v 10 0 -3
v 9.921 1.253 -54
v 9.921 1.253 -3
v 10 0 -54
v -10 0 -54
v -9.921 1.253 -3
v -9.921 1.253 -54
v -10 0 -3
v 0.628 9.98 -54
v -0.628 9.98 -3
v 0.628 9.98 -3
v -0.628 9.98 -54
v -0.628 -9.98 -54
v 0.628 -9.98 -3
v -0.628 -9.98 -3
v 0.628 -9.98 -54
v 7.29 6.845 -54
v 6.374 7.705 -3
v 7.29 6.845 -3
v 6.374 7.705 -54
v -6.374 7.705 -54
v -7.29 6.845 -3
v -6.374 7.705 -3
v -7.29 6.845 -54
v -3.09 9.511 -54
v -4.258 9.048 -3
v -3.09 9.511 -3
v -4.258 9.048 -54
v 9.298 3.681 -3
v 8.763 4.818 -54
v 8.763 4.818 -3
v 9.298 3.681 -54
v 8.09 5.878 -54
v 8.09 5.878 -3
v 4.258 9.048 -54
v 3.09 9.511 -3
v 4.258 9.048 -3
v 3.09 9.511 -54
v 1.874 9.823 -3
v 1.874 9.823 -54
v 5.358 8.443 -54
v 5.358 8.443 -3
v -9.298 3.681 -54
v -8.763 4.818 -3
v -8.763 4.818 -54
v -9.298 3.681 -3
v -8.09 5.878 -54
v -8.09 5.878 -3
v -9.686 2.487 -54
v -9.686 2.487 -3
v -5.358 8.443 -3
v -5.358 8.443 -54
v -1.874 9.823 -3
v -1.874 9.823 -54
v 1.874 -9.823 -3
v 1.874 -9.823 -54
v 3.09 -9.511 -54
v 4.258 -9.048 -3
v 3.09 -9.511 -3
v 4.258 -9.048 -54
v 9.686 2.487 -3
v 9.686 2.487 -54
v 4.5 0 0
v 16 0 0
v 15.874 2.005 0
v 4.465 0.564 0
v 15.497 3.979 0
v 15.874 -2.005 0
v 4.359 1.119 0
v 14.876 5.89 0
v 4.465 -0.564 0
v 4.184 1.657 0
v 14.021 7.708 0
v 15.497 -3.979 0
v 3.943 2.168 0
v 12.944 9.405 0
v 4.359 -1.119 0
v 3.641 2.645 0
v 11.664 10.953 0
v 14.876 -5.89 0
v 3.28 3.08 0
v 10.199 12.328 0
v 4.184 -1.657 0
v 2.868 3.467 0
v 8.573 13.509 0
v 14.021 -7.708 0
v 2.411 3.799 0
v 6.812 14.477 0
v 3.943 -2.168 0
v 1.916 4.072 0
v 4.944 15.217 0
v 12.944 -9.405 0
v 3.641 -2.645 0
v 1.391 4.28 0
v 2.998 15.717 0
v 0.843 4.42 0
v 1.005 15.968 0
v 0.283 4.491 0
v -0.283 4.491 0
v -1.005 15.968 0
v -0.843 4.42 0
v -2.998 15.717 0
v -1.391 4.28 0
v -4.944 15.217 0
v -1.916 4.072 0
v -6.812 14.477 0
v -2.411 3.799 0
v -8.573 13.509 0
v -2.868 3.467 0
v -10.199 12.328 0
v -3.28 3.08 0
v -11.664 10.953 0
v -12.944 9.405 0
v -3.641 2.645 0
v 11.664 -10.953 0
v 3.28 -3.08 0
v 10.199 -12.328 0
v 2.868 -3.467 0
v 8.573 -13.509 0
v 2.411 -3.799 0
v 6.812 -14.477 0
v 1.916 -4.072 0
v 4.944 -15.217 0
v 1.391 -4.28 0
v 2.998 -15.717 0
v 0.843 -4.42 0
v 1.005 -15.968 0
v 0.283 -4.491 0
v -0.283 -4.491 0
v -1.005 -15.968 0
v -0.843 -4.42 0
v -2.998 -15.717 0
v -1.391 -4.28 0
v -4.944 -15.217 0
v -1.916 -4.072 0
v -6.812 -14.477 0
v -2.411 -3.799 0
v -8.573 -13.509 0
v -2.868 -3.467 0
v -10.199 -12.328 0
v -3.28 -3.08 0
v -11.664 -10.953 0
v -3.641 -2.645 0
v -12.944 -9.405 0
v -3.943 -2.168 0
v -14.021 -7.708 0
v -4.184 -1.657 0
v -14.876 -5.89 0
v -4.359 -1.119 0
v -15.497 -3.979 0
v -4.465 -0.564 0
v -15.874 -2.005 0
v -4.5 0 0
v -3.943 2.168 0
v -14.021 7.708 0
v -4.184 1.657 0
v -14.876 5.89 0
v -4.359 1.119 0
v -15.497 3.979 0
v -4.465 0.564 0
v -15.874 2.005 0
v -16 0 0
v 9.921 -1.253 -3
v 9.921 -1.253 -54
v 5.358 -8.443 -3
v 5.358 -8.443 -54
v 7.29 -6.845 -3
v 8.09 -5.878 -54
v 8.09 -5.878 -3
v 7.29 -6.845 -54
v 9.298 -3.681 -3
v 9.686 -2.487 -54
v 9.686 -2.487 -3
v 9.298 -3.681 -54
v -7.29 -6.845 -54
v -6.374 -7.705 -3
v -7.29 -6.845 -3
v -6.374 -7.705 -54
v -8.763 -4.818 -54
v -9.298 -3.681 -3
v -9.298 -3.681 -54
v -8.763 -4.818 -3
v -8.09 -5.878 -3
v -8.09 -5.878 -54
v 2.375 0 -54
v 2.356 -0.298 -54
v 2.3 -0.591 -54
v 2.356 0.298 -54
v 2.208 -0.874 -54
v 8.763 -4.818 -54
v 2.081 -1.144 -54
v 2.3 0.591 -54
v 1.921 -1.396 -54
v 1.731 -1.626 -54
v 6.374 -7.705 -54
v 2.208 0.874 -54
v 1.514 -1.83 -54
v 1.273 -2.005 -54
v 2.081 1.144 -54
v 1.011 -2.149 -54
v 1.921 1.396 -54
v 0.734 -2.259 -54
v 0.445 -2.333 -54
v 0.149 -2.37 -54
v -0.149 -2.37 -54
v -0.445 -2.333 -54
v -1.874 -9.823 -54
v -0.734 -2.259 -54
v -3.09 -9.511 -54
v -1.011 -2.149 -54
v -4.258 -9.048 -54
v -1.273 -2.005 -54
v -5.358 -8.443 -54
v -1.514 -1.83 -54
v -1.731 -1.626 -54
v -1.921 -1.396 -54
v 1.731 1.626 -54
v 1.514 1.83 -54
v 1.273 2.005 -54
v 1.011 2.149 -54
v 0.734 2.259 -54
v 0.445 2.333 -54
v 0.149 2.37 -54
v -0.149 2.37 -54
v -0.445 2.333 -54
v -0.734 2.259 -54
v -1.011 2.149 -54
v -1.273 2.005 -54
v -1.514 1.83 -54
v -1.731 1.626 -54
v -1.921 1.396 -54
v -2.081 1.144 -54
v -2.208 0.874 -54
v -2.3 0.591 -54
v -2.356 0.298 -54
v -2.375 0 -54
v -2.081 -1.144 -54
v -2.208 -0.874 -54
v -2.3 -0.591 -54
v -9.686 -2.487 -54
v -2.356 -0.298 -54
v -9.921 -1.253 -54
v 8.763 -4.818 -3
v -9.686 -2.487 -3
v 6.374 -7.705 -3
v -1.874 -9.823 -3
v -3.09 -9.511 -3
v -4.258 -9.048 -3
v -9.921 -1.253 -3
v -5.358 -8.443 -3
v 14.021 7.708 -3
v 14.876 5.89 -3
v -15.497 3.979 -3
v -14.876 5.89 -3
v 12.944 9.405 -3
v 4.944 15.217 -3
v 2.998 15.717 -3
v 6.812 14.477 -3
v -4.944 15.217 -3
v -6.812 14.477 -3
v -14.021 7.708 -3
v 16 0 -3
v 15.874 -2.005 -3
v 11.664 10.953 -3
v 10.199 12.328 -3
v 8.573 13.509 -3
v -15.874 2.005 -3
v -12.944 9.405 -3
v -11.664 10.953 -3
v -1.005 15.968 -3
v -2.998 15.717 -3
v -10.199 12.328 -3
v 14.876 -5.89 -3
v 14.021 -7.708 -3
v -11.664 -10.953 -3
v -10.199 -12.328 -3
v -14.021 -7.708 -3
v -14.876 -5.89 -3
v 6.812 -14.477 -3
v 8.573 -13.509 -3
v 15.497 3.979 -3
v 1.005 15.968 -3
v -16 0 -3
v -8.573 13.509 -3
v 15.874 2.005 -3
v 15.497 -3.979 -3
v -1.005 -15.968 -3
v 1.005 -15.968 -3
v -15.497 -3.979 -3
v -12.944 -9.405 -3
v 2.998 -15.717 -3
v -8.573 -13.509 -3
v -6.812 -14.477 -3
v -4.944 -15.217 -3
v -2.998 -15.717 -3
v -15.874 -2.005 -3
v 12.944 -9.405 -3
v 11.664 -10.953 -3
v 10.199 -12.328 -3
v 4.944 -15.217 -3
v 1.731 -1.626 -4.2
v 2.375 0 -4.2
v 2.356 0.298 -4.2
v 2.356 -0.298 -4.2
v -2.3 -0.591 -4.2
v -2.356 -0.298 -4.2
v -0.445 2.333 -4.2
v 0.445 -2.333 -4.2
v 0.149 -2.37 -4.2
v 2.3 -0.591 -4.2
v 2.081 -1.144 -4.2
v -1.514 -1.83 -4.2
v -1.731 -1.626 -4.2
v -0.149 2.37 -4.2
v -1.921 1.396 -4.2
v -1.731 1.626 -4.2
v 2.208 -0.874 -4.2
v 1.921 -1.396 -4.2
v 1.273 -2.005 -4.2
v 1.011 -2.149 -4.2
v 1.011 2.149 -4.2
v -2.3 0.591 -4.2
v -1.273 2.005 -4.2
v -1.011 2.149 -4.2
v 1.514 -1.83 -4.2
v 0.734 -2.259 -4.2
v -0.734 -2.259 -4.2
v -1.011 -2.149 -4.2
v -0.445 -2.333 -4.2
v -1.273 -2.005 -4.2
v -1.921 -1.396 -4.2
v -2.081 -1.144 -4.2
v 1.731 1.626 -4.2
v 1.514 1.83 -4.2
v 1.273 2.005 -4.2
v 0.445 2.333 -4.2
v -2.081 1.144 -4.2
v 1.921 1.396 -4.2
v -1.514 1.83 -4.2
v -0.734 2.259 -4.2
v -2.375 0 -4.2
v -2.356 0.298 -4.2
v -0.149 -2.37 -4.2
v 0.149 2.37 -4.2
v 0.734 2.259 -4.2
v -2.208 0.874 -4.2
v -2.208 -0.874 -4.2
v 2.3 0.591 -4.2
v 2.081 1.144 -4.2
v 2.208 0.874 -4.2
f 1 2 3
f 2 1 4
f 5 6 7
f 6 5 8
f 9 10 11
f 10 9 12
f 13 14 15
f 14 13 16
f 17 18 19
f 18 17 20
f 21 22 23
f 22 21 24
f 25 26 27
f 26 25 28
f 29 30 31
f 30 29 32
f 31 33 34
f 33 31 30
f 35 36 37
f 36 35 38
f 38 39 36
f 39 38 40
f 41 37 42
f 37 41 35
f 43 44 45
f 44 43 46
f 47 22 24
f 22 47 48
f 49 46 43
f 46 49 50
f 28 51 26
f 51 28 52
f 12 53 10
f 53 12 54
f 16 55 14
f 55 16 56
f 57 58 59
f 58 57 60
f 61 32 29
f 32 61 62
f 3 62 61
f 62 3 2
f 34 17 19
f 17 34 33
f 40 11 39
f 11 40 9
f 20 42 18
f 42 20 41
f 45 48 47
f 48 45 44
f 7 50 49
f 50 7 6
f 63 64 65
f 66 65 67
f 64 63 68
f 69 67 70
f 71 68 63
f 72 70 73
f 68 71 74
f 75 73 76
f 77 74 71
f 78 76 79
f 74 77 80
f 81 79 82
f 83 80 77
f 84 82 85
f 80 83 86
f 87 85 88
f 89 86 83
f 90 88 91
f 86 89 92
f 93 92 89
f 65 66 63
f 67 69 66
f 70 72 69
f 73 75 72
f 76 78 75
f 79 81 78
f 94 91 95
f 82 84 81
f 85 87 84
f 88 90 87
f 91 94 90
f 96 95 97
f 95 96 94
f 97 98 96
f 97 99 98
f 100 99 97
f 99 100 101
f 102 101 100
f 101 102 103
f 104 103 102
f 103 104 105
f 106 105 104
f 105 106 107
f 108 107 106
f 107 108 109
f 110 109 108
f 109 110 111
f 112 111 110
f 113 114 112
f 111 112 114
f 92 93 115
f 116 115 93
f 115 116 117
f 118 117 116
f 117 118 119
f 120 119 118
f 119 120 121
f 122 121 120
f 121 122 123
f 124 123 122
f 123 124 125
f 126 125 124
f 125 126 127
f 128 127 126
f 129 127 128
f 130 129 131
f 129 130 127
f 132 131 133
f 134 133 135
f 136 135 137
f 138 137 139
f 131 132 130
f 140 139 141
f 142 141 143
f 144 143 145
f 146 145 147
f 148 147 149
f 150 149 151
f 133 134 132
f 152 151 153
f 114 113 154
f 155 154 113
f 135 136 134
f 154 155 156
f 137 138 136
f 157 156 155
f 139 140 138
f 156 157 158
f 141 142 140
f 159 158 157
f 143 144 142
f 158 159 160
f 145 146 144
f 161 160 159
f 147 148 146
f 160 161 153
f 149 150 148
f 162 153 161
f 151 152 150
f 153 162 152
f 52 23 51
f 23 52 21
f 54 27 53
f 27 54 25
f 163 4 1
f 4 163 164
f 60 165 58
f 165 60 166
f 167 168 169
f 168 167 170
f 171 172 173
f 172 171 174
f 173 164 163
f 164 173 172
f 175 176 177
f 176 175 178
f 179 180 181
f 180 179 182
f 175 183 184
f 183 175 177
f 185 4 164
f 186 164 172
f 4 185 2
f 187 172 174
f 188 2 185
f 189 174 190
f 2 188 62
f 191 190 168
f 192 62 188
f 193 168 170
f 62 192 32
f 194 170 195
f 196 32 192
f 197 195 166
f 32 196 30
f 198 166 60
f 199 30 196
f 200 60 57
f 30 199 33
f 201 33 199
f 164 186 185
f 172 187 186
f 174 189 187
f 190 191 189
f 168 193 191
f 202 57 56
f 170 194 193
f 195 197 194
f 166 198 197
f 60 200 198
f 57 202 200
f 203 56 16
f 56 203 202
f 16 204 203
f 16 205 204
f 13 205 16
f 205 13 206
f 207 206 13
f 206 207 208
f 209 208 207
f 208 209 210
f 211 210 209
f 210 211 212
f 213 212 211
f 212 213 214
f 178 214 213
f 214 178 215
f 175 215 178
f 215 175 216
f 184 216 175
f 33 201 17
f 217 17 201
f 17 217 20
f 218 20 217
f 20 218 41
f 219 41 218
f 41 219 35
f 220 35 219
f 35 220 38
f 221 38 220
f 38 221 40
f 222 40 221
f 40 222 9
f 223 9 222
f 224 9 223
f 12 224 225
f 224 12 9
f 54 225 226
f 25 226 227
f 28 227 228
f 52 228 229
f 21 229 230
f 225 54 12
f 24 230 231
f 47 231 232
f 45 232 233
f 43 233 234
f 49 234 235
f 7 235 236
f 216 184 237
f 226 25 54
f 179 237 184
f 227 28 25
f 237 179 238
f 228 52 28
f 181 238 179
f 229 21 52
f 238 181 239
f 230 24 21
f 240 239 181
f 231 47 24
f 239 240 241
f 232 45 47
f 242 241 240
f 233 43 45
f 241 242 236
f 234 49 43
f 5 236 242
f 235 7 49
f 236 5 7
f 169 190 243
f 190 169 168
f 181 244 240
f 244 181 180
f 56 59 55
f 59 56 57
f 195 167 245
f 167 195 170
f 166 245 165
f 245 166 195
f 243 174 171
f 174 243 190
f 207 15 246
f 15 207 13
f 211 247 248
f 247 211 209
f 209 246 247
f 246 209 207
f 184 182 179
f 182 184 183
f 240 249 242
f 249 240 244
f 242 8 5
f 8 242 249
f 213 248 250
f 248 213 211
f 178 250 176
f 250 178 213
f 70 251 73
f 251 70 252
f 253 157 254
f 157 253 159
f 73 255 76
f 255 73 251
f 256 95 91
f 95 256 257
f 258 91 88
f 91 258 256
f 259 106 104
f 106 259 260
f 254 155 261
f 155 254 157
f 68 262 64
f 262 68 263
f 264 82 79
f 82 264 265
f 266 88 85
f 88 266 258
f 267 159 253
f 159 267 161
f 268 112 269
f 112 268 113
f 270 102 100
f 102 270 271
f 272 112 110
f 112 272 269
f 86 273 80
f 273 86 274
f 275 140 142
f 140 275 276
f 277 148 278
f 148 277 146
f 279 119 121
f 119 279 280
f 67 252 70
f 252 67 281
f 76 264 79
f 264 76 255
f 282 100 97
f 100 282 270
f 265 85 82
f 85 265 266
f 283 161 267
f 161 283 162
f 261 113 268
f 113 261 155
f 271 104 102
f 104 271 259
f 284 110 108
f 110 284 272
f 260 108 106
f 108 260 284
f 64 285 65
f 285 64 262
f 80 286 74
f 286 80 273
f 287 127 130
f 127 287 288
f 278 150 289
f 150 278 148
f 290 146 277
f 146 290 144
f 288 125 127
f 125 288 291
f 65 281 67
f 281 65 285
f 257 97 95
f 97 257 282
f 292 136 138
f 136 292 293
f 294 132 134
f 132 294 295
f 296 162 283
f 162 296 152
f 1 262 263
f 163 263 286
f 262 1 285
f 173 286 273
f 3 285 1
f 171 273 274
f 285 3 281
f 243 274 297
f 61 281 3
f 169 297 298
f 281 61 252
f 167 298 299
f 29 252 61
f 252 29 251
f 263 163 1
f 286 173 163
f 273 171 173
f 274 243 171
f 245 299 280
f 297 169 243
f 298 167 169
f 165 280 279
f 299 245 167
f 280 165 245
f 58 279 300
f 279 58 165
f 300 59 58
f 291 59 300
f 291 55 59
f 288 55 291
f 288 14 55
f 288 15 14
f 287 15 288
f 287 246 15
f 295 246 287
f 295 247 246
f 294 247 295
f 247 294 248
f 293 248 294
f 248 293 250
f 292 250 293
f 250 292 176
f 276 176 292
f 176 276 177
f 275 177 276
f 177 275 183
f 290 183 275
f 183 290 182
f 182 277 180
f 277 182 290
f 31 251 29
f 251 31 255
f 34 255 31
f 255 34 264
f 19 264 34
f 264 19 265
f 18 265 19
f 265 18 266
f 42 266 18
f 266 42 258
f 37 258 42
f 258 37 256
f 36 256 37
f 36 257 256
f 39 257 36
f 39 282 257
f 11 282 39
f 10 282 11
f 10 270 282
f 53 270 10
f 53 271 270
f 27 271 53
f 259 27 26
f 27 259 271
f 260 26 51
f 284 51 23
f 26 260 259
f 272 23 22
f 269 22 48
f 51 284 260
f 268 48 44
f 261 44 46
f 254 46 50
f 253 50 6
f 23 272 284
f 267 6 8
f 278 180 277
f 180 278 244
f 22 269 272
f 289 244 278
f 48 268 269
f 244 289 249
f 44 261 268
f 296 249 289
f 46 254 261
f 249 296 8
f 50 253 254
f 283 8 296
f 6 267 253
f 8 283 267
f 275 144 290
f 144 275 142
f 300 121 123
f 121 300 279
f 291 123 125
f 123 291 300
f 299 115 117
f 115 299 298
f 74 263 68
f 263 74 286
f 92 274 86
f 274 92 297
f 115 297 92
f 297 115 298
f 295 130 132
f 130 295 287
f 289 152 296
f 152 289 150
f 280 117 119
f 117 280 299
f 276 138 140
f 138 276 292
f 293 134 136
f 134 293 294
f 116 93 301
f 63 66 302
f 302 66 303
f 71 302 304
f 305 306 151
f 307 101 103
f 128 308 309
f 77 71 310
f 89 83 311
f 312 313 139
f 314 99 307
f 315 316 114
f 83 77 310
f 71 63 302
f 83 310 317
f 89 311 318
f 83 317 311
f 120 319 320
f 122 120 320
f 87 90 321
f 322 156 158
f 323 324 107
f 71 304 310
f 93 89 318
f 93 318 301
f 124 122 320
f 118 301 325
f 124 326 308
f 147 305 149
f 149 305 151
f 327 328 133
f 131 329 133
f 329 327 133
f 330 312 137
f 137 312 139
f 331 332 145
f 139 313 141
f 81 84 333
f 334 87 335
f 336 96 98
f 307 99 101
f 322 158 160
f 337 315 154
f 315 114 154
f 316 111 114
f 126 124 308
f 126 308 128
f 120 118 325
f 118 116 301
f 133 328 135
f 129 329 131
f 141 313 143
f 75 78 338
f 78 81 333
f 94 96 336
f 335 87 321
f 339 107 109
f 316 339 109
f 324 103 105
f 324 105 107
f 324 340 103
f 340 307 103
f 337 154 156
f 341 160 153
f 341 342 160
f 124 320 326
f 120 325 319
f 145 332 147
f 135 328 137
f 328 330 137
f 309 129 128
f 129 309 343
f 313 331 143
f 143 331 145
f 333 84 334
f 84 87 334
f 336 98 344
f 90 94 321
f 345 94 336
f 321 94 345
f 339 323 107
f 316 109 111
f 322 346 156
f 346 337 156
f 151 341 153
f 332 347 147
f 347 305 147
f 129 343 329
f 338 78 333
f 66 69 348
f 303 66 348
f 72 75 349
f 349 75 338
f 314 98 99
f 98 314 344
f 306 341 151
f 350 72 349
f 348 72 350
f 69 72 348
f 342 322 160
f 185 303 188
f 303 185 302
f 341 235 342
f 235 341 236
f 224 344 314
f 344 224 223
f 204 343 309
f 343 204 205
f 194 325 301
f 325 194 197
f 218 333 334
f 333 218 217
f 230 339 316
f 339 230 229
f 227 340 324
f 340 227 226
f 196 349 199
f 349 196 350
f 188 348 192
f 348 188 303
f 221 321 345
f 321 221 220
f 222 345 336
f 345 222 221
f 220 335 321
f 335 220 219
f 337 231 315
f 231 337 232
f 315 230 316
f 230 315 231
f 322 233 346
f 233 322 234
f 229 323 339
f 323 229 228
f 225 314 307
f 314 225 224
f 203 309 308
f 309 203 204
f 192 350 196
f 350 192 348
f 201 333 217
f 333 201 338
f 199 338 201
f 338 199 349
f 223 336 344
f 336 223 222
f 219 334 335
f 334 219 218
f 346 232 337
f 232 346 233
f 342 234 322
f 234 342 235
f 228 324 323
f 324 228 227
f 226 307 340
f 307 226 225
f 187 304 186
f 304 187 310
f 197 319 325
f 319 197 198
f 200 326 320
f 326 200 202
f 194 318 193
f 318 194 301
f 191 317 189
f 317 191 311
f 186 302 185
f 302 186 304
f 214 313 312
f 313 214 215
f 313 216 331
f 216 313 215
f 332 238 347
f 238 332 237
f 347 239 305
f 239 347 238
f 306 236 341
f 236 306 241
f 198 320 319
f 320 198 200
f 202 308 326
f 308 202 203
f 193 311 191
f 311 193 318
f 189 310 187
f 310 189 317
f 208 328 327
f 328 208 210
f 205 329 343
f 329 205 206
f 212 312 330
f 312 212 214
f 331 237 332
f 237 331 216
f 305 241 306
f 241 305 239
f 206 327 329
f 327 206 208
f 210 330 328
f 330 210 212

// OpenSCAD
$fn = 50;


difference() {
	union() {
		translate(v = [0, 0, -54.0000000000]) {
			cylinder(h = 54, r = 10.0000000000);
		}
		translate(v = [0, 0, -3.0000000000]) {
			cylinder(h = 3, r = 16.0000000000);
		}
	}
	union() {
		translate(v = [0, 0, 0]) {
			rotate(a = [0, 0, 0]) {
				difference() {
					union() {
						#translate(v = [0, 0, -54.0000000000]) {
							cylinder(h = 54, r = 2.2500000000);
						}
						#translate(v = [0, 0, -4.2000000000]) {
							cylinder(h = 4.2000000000, r = 10.0000000000, r1 = 2.3750000000, r2 = 4.5000000000);
						}
						#translate(v = [0, 0, -54.0000000000]) {
							cylinder(h = 54, r = 2.3750000000);
						}
						#translate(v = [0, 0, -54.0000000000]) {
							cylinder(h = 54, r = 2.2500000000);
						}
					}
					union();
				}
			}
		}
	}
}
